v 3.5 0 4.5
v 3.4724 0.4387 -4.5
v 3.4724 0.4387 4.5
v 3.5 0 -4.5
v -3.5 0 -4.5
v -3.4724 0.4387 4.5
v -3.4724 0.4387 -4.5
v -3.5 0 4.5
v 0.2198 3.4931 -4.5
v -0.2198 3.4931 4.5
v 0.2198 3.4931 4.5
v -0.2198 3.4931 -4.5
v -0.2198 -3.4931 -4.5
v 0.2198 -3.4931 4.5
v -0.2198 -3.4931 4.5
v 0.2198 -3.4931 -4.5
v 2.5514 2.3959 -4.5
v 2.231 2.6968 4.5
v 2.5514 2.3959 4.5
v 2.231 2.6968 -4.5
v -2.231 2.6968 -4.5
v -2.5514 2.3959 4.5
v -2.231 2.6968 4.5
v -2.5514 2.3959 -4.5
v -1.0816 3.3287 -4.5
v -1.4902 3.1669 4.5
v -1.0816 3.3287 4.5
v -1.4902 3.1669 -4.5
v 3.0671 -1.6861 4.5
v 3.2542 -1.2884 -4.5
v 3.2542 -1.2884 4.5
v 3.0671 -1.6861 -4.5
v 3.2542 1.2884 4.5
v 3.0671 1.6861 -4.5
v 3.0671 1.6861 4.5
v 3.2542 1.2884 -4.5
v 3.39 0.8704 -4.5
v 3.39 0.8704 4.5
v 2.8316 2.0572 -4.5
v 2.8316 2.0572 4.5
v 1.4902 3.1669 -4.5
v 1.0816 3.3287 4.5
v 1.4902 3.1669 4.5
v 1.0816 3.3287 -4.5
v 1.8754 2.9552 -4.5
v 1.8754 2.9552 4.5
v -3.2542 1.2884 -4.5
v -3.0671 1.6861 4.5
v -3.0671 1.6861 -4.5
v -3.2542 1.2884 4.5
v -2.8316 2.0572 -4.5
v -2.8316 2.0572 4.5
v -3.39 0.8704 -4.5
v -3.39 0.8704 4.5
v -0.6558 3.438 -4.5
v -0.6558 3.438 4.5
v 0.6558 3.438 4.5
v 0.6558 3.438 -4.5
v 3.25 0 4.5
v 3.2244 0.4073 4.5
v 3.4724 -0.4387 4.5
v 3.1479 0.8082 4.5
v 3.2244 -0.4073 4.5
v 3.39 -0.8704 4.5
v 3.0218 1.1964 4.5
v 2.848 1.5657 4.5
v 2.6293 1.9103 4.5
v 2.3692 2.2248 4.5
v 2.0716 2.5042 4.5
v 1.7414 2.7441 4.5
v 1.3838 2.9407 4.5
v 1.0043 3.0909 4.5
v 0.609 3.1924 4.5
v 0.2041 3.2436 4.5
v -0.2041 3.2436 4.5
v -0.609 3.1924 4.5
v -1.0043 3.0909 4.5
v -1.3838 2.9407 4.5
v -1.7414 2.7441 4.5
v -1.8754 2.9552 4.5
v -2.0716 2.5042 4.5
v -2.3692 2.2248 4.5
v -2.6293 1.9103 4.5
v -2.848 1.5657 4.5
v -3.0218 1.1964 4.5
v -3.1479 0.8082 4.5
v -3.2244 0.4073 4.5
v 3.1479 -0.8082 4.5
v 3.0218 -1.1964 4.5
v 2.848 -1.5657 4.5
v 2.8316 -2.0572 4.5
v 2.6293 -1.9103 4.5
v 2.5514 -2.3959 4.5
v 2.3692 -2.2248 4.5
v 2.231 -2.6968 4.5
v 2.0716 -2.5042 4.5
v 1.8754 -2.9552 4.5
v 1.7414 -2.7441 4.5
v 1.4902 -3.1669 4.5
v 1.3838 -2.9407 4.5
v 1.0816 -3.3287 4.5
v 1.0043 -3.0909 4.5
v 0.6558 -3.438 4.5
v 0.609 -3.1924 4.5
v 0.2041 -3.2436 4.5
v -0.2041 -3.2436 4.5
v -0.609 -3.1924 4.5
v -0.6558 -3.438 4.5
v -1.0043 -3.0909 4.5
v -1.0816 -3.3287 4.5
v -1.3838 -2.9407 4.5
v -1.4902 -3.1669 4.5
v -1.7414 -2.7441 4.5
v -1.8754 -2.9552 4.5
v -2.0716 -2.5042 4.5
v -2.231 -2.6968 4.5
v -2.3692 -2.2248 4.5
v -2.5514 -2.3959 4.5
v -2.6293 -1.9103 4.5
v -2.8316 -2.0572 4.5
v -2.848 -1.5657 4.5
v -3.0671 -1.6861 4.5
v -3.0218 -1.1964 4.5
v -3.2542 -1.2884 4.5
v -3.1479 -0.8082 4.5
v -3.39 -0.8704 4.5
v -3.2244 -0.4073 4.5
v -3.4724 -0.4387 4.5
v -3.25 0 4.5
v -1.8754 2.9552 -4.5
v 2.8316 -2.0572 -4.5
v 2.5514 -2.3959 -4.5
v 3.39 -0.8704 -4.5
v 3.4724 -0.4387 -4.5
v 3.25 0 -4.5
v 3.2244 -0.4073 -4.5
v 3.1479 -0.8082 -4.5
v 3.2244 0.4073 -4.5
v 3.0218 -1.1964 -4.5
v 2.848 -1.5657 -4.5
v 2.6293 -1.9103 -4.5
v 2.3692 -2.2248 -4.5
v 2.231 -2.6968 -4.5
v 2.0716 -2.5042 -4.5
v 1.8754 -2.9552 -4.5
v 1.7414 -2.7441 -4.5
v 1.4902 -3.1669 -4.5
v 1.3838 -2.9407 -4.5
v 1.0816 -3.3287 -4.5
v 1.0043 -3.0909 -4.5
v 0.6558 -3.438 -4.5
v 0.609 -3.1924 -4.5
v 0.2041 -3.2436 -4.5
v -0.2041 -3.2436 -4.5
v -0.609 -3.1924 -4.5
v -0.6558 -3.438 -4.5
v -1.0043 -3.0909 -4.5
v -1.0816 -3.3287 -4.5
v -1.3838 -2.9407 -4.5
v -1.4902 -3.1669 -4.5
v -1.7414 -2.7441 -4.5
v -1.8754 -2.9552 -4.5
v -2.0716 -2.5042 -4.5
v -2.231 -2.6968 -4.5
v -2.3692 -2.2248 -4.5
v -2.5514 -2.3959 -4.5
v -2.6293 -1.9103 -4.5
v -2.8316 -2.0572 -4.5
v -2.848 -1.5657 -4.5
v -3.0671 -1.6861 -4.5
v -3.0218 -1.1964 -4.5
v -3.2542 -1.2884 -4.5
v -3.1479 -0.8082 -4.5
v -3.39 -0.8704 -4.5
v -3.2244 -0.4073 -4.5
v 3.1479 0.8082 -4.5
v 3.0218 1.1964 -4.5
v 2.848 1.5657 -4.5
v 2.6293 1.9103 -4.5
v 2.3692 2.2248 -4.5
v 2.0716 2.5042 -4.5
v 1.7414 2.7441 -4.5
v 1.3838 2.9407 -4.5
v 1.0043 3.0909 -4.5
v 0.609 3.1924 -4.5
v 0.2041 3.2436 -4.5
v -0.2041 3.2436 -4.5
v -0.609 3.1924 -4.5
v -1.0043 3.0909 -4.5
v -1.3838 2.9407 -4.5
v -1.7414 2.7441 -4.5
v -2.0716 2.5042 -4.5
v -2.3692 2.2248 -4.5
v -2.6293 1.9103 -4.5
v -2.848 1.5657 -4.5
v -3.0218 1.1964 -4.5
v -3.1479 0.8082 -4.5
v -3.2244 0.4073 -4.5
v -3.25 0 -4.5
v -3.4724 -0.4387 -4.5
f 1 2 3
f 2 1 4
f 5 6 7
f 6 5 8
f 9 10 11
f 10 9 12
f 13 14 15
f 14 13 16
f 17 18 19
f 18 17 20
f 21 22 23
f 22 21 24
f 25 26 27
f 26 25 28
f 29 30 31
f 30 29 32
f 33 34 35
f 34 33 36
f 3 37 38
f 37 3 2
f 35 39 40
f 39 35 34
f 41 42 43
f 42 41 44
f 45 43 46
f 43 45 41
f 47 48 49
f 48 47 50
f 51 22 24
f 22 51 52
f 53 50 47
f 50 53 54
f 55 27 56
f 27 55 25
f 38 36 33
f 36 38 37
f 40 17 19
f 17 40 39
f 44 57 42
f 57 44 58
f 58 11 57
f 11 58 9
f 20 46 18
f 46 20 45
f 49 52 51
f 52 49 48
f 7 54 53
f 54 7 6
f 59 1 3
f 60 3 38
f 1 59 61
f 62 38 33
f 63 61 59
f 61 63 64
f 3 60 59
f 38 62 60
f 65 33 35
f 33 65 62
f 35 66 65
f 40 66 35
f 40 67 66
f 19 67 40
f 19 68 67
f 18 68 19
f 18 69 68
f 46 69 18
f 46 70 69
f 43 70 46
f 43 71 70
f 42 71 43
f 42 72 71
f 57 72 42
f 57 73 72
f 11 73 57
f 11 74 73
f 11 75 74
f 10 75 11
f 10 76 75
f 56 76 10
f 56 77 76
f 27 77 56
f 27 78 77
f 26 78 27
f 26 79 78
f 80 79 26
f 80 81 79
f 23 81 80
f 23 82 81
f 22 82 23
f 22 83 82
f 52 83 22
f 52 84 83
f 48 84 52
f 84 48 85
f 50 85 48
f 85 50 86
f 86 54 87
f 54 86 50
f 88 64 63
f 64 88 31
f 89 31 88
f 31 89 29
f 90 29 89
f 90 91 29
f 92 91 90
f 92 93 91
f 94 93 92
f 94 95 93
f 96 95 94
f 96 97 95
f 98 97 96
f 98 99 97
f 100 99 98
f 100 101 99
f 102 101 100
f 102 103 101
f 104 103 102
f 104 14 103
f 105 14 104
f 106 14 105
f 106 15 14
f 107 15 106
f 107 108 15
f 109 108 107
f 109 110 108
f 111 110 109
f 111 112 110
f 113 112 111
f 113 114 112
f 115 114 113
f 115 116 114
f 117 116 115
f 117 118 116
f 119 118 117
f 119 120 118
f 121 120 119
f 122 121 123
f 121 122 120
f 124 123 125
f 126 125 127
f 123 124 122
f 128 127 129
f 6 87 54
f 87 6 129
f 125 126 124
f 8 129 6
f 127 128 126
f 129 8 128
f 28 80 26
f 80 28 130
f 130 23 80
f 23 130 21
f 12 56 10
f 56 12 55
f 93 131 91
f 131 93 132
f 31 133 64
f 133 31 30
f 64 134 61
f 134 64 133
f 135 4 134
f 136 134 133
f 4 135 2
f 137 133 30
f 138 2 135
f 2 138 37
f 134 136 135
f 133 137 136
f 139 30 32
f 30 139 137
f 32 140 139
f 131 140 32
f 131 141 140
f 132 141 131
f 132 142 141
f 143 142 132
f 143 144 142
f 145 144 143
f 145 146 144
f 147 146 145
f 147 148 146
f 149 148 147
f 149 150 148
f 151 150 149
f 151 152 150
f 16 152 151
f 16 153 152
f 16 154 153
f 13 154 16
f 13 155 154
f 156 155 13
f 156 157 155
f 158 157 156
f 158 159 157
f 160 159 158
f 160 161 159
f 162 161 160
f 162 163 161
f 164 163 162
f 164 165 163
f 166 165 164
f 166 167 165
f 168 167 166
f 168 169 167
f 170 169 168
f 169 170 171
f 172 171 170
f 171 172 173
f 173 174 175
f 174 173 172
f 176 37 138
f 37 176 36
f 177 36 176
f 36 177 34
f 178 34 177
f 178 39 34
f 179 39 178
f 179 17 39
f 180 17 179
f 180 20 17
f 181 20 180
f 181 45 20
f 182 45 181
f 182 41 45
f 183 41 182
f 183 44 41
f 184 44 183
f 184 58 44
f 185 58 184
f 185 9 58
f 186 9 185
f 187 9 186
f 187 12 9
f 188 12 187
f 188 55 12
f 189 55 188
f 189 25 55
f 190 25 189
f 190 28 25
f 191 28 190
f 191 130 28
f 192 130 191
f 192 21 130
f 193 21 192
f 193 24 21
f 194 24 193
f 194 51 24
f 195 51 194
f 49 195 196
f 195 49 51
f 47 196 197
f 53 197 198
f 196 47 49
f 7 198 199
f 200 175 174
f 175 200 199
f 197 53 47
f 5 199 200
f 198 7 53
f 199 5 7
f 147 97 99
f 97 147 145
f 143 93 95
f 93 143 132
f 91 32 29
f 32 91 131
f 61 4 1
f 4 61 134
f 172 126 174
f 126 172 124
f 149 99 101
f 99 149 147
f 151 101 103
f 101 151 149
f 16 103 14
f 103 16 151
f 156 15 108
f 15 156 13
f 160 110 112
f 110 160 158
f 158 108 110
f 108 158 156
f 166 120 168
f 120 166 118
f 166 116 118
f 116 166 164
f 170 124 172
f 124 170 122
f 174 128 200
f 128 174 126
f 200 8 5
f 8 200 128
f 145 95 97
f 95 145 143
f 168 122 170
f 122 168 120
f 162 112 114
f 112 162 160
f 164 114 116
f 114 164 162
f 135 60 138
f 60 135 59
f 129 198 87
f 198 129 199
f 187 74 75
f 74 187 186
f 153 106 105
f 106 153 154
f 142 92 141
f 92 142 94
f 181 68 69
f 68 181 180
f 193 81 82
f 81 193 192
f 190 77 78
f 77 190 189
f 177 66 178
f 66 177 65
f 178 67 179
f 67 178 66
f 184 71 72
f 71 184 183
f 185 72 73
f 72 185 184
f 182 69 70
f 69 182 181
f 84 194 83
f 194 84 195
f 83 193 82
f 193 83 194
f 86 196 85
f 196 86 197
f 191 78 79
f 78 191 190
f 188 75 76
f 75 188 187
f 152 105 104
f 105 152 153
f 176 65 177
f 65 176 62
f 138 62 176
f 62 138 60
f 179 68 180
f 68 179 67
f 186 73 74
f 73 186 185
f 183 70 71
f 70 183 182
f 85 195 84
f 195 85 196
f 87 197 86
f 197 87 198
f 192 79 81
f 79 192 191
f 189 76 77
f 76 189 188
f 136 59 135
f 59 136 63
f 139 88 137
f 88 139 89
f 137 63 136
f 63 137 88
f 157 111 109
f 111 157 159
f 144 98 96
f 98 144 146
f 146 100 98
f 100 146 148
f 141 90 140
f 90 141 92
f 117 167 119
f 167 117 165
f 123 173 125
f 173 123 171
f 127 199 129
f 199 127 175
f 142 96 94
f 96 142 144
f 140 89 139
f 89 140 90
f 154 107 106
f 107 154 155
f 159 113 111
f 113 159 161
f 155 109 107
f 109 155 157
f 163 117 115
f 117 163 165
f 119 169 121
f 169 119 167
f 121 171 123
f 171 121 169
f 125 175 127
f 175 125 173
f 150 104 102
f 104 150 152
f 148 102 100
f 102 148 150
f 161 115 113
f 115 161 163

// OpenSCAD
$fn = 50;


difference() {
	union() {
		translate(v = [0, 0, -4.5000000000]) {
			cylinder(h = 9, r = 3.5000000000);
		}
	}
	union() {
		translate(v = [0, 0, -100.0000000000]) {
			cylinder(h = 200, r = 3.2500000000);
		}
	}
}
